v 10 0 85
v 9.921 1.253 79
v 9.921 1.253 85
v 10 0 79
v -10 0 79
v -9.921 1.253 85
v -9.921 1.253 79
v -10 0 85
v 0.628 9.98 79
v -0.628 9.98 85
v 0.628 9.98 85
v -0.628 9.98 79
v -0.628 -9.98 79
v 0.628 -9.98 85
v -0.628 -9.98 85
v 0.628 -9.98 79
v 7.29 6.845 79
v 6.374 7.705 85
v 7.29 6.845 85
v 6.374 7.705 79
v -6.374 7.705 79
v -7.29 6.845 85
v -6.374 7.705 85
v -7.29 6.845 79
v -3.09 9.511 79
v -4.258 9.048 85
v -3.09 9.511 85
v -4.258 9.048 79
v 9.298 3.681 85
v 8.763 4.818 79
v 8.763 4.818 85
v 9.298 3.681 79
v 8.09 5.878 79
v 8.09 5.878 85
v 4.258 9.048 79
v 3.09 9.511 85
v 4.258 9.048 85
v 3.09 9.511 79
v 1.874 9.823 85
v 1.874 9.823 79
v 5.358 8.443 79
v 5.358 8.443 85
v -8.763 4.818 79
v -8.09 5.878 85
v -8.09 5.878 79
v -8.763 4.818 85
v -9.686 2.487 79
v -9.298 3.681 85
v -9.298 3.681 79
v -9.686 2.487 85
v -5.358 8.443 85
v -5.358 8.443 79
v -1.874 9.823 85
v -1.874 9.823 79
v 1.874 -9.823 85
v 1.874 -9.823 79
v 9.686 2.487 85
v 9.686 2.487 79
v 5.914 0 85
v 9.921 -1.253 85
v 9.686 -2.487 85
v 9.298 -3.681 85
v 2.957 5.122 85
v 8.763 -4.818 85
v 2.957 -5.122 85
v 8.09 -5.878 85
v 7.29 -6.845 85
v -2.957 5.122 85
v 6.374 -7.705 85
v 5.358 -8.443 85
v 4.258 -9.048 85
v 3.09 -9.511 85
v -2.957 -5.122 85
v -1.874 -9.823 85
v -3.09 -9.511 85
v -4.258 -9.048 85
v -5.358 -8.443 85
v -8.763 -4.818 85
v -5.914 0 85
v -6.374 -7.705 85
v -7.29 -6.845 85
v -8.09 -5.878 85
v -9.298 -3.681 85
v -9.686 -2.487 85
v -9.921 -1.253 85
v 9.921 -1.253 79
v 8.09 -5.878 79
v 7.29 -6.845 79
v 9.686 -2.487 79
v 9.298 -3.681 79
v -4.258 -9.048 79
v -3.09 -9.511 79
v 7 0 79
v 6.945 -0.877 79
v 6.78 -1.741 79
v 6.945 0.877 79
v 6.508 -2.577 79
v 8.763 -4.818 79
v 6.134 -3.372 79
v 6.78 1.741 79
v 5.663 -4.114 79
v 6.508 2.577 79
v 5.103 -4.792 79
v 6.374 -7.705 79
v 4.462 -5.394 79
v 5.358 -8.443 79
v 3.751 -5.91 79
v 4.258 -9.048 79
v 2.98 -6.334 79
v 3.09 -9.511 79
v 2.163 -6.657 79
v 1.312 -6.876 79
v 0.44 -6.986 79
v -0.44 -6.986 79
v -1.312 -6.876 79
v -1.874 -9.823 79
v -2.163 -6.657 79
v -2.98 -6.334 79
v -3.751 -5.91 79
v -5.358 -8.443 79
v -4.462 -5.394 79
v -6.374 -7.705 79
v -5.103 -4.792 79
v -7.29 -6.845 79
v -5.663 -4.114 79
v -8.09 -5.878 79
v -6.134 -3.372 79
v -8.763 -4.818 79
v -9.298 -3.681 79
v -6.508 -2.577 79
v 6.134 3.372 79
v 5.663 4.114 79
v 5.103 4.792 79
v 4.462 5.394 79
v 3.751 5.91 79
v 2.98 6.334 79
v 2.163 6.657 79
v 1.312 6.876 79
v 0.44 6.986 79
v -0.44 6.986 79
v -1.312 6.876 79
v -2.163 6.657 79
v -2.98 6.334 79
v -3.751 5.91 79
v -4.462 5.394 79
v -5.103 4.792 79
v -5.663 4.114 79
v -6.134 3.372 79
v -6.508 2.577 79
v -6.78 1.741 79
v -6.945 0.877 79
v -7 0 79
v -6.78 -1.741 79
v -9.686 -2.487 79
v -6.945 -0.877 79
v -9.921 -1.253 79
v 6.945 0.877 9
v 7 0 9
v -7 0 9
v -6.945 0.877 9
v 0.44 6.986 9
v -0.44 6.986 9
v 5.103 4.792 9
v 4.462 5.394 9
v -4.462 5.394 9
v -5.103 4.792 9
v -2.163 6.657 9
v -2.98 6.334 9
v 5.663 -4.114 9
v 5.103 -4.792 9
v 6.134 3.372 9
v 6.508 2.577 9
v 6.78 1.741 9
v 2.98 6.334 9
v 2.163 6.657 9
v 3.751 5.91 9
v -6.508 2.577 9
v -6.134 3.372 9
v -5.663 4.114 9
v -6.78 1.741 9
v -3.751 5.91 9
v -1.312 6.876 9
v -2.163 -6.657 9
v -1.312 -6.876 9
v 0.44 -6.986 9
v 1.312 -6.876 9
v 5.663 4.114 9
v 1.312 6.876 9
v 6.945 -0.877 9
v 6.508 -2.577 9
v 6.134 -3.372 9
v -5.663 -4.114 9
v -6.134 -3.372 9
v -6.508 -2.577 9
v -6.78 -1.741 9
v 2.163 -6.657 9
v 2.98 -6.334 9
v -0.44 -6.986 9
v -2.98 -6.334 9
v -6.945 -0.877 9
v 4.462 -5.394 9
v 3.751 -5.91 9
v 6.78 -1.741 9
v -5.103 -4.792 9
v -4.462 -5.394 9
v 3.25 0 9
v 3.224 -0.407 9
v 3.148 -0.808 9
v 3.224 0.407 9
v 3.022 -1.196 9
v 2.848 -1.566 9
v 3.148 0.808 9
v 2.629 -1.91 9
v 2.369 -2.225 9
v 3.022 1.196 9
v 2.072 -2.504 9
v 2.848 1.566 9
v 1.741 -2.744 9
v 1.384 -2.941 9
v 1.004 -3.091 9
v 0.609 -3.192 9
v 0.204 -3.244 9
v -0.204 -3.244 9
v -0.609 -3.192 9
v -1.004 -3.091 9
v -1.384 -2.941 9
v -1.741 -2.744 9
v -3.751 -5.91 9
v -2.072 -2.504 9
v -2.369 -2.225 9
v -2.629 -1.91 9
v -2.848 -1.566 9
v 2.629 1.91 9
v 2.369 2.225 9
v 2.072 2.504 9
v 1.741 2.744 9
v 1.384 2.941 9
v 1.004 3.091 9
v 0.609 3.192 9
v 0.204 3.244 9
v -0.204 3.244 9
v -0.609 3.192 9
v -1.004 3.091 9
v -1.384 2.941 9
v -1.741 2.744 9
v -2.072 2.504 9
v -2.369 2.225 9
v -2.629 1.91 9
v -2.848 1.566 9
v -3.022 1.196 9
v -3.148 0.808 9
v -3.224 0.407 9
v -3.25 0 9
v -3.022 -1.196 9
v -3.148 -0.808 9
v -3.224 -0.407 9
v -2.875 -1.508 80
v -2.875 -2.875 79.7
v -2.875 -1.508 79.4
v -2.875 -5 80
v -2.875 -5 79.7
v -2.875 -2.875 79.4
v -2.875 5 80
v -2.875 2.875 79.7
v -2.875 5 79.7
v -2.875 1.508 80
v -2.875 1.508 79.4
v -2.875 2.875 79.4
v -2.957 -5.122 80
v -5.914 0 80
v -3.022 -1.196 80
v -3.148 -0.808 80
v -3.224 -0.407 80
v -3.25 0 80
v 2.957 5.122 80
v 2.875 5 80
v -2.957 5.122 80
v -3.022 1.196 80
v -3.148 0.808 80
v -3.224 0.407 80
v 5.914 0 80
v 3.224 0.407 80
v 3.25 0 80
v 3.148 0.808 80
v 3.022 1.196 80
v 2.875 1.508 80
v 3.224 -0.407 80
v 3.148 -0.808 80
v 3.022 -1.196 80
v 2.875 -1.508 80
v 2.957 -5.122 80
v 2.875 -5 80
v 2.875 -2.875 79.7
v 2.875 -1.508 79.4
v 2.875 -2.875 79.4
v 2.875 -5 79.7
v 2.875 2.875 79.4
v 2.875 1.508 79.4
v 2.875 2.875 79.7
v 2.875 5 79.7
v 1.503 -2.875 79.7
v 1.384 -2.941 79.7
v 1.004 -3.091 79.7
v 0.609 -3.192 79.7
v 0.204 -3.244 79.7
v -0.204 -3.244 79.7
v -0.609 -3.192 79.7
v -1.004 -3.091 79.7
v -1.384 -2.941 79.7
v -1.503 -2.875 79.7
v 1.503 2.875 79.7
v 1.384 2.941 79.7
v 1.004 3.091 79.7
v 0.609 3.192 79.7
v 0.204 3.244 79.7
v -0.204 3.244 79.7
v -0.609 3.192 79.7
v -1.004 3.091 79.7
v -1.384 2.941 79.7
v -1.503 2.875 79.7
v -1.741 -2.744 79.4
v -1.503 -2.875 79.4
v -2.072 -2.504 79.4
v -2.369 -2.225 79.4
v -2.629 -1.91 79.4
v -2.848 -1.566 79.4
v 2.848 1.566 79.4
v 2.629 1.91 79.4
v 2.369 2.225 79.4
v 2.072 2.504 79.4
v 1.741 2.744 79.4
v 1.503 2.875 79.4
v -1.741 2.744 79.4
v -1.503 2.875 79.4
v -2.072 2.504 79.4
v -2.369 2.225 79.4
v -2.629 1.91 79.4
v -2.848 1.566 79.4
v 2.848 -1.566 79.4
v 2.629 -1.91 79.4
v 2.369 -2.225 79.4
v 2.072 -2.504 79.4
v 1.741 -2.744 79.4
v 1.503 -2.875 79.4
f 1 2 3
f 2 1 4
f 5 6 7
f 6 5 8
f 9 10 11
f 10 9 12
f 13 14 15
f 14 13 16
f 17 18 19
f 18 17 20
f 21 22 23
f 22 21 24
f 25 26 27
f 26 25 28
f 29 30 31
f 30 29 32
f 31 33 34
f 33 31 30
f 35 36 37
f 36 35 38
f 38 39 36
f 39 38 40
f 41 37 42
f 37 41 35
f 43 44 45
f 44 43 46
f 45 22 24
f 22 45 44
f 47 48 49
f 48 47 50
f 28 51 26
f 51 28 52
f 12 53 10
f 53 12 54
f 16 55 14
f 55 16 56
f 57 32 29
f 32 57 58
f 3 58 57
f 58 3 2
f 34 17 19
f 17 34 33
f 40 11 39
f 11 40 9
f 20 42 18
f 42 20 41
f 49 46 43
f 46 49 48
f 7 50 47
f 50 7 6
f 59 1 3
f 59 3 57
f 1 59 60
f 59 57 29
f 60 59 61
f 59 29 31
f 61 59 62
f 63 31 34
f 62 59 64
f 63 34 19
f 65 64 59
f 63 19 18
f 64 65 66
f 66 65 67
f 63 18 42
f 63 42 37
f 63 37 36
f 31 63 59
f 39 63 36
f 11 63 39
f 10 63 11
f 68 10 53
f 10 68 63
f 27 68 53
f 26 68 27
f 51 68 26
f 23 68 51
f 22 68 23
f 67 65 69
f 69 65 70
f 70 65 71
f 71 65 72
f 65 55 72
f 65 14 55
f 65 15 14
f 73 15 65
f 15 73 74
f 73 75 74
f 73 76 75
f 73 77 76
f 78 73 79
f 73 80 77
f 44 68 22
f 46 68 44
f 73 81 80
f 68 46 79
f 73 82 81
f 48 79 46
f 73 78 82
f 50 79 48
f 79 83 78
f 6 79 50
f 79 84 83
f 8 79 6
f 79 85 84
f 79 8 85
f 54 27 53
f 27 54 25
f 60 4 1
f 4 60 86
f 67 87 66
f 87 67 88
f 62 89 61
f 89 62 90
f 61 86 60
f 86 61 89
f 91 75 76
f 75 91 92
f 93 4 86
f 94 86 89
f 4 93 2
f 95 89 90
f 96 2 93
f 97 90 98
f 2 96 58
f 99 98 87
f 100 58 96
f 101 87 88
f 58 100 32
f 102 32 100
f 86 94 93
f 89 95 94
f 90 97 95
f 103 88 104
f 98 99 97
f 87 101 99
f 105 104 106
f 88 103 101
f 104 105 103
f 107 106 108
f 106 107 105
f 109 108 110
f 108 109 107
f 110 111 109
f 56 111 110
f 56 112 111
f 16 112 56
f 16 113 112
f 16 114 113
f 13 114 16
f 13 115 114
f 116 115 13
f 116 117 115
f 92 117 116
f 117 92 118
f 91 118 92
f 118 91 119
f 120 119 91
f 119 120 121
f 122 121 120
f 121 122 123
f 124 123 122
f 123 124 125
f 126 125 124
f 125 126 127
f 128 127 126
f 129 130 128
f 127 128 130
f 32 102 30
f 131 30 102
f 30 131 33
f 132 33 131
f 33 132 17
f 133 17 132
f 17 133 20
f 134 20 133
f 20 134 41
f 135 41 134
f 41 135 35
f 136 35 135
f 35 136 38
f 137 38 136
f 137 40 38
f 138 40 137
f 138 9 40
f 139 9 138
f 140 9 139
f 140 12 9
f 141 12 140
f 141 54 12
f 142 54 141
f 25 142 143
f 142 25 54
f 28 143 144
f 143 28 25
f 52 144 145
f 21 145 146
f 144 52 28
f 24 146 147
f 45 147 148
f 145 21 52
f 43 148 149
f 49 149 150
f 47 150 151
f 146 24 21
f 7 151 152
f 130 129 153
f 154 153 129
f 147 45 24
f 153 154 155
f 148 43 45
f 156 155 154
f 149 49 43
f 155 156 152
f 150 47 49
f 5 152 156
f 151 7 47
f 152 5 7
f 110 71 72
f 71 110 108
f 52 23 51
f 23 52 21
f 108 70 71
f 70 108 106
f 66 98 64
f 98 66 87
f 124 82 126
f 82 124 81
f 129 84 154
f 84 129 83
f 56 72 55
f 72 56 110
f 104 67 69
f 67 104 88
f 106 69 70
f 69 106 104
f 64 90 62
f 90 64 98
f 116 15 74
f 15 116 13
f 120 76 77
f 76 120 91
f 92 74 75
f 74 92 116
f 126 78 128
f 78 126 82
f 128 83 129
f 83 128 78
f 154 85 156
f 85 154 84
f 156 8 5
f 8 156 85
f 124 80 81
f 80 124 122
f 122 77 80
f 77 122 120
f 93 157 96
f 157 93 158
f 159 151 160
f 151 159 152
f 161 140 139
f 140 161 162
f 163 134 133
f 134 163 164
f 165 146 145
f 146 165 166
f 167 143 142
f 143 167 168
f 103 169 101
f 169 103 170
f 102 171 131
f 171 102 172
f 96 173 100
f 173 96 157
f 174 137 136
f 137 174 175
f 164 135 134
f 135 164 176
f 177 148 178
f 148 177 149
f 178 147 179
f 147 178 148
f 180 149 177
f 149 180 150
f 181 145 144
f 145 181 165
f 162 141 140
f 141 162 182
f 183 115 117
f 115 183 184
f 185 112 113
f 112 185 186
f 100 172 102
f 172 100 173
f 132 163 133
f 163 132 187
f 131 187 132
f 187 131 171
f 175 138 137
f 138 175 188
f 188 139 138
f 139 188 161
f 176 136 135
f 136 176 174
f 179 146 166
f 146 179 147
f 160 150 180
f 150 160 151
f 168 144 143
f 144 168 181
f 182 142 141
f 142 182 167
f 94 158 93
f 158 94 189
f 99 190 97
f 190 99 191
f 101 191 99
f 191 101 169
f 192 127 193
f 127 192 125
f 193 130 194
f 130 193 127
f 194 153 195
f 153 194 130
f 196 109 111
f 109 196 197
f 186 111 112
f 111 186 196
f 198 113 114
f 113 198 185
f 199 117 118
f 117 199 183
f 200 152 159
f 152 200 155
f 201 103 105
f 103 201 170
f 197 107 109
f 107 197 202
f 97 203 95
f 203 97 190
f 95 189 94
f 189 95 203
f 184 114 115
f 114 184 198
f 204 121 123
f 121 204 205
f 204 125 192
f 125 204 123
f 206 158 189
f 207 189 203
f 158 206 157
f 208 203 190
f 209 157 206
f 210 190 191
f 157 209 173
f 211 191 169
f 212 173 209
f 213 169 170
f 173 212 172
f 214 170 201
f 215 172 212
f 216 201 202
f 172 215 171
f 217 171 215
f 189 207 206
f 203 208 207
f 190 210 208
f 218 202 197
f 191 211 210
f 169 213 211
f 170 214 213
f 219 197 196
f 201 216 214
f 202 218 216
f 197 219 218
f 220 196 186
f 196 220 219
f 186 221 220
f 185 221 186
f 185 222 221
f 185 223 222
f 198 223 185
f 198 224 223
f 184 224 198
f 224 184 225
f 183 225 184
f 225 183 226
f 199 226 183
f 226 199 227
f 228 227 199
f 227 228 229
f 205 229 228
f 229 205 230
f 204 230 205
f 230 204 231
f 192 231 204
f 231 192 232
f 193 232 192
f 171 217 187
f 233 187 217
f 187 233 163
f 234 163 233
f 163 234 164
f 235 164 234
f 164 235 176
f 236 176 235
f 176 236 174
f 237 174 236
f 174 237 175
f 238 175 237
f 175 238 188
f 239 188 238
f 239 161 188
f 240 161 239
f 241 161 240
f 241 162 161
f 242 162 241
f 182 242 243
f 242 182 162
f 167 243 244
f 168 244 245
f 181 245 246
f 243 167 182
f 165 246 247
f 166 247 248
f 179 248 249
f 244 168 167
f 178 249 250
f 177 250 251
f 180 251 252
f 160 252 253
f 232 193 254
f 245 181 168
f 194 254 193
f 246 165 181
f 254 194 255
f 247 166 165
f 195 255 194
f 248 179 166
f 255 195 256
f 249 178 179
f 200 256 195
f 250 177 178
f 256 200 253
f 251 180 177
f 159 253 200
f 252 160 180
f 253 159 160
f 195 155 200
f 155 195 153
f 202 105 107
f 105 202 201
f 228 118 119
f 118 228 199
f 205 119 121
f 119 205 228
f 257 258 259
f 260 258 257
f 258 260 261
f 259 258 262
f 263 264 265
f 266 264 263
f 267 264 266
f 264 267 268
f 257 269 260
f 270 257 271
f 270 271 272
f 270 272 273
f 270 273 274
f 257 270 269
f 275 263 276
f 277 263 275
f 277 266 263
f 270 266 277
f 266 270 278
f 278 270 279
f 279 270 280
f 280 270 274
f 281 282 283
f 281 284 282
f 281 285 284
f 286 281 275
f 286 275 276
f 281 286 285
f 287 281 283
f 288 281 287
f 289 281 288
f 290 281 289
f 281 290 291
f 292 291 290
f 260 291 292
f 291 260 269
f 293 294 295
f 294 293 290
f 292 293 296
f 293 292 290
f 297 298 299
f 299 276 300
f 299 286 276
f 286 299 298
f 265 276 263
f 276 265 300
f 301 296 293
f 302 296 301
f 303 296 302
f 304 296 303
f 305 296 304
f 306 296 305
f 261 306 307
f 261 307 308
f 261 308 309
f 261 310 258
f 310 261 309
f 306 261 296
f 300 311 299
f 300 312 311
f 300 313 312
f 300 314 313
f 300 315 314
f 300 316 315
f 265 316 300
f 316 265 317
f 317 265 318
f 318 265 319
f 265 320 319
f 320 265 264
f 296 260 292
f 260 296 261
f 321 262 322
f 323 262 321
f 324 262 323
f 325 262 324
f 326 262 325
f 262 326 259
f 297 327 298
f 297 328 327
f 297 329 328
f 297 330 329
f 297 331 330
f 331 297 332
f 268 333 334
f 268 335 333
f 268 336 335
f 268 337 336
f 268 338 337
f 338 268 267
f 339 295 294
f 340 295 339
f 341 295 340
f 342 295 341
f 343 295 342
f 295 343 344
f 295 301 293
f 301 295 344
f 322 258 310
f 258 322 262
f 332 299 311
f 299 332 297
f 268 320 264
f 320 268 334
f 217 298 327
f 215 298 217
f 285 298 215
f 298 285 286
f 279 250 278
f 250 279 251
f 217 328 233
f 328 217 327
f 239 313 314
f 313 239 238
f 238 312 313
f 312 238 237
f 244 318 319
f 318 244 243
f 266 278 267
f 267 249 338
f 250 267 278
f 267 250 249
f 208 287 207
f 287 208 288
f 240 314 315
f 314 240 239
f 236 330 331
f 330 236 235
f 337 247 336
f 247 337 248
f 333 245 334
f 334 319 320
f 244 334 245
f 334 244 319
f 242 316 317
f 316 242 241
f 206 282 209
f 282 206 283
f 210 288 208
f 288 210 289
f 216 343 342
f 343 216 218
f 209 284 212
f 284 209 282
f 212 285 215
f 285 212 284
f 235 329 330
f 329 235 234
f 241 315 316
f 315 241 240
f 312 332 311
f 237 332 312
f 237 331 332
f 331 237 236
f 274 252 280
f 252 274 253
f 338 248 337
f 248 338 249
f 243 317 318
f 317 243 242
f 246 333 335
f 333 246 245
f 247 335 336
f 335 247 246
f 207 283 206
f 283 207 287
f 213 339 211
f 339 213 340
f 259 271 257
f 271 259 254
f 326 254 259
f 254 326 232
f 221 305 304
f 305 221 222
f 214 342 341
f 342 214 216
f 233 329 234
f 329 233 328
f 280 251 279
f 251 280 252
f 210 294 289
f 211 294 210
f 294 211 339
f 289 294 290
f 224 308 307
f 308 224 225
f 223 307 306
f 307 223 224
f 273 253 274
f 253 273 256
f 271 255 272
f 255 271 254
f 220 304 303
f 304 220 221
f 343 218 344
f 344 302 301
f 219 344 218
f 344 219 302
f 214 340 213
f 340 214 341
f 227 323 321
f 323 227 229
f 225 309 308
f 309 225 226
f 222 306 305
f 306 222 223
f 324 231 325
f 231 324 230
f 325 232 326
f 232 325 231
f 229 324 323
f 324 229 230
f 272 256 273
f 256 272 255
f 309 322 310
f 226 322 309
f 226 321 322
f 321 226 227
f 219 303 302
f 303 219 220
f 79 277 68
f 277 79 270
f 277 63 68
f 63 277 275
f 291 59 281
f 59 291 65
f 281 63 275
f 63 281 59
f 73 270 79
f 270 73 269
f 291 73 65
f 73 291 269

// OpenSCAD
$fn = 50;


difference() {
	union() {
		translate(v = [0, 0, 79.0000000000]) {
			cylinder(h = 6, r = 10.0000000000);
		}
		translate(v = [0, 0, 9.0000000000]) {
			cylinder(h = 76, r = 7.0000000000);
		}
	}
	union() {
		translate(v = [0, 0, 85]) {
			rotate(a = [0, 0, 0]) {
				difference() {
					union() {
						#translate(v = [-2.8750000000, -5.0000000000, -5.3000000000]) {
							cube(size = [5.7500000000, 10, 0.3000000000]);
						}
						#translate(v = [-2.8750000000, -2.8750000000, -5.6000000000]) {
							cube(size = [5.7500000000, 5.7500000000, 0.3000000000]);
						}
						#translate(v = [-2.8750000000, -5.0000000000, 0]) {
							cube(size = [5.7500000000, 10, 0.3000000000]);
						}
						#translate(v = [-2.8750000000, -2.8750000000, 0.3000000000]) {
							cube(size = [5.7500000000, 5.7500000000, 0.3000000000]);
						}
						#translate(v = [0, 0, -100.0000000000]) {
							cylinder(h = 200, r = 3.2500000000);
						}
						translate(v = [0, 0, -5]) {
							#linear_extrude(height = 5) {
								polygon(points = [[5.9142500000, 0.0000000000], [2.9571250000, 5.1218907443], [-2.9571250000, 5.1218907443], [-5.9142500000, 0.0000000000], [-2.9571250000, -5.1218907443], [2.9571250000, -5.1218907443]]);
							}
						}
						#translate(v = [-2.8750000000, -5.0000000000, -5.3000000000]) {
							cube(size = [5.7500000000, 10, 0.3000000000]);
						}
						#translate(v = [-2.8750000000, -2.8750000000, -5.6000000000]) {
							cube(size = [5.7500000000, 5.7500000000, 0.3000000000]);
						}
						#translate(v = [-2.8750000000, -5.0000000000, 0]) {
							cube(size = [5.7500000000, 10, 0.3000000000]);
						}
						#translate(v = [-2.8750000000, -2.8750000000, 0.3000000000]) {
							cube(size = [5.7500000000, 5.7500000000, 0.3000000000]);
						}
						#translate(v = [0, 0, -100.0000000000]) {
							cylinder(h = 200, r = 3.2500000000);
						}
						#translate(v = [-2.8750000000, -5.0000000000, -5.3000000000]) {
							cube(size = [5.7500000000, 10, 0.3000000000]);
						}
						#translate(v = [-2.8750000000, -2.8750000000, -5.6000000000]) {
							cube(size = [5.7500000000, 5.7500000000, 0.3000000000]);
						}
						#translate(v = [-2.8750000000, -5.0000000000, 0]) {
							cube(size = [5.7500000000, 10, 0.3000000000]);
						}
						#translate(v = [-2.8750000000, -2.8750000000, 0.3000000000]) {
							cube(size = [5.7500000000, 5.7500000000, 0.3000000000]);
						}
						#translate(v = [0, 0, -100.0000000000]) {
							cylinder(h = 200, r = 3.2500000000);
						}
					}
					union();
				}
			}
		}
		#translate(v = [0, 0, -100.0000000000]) {
			cylinder(h = 200, r = 3.2500000000);
		}
	}
}
